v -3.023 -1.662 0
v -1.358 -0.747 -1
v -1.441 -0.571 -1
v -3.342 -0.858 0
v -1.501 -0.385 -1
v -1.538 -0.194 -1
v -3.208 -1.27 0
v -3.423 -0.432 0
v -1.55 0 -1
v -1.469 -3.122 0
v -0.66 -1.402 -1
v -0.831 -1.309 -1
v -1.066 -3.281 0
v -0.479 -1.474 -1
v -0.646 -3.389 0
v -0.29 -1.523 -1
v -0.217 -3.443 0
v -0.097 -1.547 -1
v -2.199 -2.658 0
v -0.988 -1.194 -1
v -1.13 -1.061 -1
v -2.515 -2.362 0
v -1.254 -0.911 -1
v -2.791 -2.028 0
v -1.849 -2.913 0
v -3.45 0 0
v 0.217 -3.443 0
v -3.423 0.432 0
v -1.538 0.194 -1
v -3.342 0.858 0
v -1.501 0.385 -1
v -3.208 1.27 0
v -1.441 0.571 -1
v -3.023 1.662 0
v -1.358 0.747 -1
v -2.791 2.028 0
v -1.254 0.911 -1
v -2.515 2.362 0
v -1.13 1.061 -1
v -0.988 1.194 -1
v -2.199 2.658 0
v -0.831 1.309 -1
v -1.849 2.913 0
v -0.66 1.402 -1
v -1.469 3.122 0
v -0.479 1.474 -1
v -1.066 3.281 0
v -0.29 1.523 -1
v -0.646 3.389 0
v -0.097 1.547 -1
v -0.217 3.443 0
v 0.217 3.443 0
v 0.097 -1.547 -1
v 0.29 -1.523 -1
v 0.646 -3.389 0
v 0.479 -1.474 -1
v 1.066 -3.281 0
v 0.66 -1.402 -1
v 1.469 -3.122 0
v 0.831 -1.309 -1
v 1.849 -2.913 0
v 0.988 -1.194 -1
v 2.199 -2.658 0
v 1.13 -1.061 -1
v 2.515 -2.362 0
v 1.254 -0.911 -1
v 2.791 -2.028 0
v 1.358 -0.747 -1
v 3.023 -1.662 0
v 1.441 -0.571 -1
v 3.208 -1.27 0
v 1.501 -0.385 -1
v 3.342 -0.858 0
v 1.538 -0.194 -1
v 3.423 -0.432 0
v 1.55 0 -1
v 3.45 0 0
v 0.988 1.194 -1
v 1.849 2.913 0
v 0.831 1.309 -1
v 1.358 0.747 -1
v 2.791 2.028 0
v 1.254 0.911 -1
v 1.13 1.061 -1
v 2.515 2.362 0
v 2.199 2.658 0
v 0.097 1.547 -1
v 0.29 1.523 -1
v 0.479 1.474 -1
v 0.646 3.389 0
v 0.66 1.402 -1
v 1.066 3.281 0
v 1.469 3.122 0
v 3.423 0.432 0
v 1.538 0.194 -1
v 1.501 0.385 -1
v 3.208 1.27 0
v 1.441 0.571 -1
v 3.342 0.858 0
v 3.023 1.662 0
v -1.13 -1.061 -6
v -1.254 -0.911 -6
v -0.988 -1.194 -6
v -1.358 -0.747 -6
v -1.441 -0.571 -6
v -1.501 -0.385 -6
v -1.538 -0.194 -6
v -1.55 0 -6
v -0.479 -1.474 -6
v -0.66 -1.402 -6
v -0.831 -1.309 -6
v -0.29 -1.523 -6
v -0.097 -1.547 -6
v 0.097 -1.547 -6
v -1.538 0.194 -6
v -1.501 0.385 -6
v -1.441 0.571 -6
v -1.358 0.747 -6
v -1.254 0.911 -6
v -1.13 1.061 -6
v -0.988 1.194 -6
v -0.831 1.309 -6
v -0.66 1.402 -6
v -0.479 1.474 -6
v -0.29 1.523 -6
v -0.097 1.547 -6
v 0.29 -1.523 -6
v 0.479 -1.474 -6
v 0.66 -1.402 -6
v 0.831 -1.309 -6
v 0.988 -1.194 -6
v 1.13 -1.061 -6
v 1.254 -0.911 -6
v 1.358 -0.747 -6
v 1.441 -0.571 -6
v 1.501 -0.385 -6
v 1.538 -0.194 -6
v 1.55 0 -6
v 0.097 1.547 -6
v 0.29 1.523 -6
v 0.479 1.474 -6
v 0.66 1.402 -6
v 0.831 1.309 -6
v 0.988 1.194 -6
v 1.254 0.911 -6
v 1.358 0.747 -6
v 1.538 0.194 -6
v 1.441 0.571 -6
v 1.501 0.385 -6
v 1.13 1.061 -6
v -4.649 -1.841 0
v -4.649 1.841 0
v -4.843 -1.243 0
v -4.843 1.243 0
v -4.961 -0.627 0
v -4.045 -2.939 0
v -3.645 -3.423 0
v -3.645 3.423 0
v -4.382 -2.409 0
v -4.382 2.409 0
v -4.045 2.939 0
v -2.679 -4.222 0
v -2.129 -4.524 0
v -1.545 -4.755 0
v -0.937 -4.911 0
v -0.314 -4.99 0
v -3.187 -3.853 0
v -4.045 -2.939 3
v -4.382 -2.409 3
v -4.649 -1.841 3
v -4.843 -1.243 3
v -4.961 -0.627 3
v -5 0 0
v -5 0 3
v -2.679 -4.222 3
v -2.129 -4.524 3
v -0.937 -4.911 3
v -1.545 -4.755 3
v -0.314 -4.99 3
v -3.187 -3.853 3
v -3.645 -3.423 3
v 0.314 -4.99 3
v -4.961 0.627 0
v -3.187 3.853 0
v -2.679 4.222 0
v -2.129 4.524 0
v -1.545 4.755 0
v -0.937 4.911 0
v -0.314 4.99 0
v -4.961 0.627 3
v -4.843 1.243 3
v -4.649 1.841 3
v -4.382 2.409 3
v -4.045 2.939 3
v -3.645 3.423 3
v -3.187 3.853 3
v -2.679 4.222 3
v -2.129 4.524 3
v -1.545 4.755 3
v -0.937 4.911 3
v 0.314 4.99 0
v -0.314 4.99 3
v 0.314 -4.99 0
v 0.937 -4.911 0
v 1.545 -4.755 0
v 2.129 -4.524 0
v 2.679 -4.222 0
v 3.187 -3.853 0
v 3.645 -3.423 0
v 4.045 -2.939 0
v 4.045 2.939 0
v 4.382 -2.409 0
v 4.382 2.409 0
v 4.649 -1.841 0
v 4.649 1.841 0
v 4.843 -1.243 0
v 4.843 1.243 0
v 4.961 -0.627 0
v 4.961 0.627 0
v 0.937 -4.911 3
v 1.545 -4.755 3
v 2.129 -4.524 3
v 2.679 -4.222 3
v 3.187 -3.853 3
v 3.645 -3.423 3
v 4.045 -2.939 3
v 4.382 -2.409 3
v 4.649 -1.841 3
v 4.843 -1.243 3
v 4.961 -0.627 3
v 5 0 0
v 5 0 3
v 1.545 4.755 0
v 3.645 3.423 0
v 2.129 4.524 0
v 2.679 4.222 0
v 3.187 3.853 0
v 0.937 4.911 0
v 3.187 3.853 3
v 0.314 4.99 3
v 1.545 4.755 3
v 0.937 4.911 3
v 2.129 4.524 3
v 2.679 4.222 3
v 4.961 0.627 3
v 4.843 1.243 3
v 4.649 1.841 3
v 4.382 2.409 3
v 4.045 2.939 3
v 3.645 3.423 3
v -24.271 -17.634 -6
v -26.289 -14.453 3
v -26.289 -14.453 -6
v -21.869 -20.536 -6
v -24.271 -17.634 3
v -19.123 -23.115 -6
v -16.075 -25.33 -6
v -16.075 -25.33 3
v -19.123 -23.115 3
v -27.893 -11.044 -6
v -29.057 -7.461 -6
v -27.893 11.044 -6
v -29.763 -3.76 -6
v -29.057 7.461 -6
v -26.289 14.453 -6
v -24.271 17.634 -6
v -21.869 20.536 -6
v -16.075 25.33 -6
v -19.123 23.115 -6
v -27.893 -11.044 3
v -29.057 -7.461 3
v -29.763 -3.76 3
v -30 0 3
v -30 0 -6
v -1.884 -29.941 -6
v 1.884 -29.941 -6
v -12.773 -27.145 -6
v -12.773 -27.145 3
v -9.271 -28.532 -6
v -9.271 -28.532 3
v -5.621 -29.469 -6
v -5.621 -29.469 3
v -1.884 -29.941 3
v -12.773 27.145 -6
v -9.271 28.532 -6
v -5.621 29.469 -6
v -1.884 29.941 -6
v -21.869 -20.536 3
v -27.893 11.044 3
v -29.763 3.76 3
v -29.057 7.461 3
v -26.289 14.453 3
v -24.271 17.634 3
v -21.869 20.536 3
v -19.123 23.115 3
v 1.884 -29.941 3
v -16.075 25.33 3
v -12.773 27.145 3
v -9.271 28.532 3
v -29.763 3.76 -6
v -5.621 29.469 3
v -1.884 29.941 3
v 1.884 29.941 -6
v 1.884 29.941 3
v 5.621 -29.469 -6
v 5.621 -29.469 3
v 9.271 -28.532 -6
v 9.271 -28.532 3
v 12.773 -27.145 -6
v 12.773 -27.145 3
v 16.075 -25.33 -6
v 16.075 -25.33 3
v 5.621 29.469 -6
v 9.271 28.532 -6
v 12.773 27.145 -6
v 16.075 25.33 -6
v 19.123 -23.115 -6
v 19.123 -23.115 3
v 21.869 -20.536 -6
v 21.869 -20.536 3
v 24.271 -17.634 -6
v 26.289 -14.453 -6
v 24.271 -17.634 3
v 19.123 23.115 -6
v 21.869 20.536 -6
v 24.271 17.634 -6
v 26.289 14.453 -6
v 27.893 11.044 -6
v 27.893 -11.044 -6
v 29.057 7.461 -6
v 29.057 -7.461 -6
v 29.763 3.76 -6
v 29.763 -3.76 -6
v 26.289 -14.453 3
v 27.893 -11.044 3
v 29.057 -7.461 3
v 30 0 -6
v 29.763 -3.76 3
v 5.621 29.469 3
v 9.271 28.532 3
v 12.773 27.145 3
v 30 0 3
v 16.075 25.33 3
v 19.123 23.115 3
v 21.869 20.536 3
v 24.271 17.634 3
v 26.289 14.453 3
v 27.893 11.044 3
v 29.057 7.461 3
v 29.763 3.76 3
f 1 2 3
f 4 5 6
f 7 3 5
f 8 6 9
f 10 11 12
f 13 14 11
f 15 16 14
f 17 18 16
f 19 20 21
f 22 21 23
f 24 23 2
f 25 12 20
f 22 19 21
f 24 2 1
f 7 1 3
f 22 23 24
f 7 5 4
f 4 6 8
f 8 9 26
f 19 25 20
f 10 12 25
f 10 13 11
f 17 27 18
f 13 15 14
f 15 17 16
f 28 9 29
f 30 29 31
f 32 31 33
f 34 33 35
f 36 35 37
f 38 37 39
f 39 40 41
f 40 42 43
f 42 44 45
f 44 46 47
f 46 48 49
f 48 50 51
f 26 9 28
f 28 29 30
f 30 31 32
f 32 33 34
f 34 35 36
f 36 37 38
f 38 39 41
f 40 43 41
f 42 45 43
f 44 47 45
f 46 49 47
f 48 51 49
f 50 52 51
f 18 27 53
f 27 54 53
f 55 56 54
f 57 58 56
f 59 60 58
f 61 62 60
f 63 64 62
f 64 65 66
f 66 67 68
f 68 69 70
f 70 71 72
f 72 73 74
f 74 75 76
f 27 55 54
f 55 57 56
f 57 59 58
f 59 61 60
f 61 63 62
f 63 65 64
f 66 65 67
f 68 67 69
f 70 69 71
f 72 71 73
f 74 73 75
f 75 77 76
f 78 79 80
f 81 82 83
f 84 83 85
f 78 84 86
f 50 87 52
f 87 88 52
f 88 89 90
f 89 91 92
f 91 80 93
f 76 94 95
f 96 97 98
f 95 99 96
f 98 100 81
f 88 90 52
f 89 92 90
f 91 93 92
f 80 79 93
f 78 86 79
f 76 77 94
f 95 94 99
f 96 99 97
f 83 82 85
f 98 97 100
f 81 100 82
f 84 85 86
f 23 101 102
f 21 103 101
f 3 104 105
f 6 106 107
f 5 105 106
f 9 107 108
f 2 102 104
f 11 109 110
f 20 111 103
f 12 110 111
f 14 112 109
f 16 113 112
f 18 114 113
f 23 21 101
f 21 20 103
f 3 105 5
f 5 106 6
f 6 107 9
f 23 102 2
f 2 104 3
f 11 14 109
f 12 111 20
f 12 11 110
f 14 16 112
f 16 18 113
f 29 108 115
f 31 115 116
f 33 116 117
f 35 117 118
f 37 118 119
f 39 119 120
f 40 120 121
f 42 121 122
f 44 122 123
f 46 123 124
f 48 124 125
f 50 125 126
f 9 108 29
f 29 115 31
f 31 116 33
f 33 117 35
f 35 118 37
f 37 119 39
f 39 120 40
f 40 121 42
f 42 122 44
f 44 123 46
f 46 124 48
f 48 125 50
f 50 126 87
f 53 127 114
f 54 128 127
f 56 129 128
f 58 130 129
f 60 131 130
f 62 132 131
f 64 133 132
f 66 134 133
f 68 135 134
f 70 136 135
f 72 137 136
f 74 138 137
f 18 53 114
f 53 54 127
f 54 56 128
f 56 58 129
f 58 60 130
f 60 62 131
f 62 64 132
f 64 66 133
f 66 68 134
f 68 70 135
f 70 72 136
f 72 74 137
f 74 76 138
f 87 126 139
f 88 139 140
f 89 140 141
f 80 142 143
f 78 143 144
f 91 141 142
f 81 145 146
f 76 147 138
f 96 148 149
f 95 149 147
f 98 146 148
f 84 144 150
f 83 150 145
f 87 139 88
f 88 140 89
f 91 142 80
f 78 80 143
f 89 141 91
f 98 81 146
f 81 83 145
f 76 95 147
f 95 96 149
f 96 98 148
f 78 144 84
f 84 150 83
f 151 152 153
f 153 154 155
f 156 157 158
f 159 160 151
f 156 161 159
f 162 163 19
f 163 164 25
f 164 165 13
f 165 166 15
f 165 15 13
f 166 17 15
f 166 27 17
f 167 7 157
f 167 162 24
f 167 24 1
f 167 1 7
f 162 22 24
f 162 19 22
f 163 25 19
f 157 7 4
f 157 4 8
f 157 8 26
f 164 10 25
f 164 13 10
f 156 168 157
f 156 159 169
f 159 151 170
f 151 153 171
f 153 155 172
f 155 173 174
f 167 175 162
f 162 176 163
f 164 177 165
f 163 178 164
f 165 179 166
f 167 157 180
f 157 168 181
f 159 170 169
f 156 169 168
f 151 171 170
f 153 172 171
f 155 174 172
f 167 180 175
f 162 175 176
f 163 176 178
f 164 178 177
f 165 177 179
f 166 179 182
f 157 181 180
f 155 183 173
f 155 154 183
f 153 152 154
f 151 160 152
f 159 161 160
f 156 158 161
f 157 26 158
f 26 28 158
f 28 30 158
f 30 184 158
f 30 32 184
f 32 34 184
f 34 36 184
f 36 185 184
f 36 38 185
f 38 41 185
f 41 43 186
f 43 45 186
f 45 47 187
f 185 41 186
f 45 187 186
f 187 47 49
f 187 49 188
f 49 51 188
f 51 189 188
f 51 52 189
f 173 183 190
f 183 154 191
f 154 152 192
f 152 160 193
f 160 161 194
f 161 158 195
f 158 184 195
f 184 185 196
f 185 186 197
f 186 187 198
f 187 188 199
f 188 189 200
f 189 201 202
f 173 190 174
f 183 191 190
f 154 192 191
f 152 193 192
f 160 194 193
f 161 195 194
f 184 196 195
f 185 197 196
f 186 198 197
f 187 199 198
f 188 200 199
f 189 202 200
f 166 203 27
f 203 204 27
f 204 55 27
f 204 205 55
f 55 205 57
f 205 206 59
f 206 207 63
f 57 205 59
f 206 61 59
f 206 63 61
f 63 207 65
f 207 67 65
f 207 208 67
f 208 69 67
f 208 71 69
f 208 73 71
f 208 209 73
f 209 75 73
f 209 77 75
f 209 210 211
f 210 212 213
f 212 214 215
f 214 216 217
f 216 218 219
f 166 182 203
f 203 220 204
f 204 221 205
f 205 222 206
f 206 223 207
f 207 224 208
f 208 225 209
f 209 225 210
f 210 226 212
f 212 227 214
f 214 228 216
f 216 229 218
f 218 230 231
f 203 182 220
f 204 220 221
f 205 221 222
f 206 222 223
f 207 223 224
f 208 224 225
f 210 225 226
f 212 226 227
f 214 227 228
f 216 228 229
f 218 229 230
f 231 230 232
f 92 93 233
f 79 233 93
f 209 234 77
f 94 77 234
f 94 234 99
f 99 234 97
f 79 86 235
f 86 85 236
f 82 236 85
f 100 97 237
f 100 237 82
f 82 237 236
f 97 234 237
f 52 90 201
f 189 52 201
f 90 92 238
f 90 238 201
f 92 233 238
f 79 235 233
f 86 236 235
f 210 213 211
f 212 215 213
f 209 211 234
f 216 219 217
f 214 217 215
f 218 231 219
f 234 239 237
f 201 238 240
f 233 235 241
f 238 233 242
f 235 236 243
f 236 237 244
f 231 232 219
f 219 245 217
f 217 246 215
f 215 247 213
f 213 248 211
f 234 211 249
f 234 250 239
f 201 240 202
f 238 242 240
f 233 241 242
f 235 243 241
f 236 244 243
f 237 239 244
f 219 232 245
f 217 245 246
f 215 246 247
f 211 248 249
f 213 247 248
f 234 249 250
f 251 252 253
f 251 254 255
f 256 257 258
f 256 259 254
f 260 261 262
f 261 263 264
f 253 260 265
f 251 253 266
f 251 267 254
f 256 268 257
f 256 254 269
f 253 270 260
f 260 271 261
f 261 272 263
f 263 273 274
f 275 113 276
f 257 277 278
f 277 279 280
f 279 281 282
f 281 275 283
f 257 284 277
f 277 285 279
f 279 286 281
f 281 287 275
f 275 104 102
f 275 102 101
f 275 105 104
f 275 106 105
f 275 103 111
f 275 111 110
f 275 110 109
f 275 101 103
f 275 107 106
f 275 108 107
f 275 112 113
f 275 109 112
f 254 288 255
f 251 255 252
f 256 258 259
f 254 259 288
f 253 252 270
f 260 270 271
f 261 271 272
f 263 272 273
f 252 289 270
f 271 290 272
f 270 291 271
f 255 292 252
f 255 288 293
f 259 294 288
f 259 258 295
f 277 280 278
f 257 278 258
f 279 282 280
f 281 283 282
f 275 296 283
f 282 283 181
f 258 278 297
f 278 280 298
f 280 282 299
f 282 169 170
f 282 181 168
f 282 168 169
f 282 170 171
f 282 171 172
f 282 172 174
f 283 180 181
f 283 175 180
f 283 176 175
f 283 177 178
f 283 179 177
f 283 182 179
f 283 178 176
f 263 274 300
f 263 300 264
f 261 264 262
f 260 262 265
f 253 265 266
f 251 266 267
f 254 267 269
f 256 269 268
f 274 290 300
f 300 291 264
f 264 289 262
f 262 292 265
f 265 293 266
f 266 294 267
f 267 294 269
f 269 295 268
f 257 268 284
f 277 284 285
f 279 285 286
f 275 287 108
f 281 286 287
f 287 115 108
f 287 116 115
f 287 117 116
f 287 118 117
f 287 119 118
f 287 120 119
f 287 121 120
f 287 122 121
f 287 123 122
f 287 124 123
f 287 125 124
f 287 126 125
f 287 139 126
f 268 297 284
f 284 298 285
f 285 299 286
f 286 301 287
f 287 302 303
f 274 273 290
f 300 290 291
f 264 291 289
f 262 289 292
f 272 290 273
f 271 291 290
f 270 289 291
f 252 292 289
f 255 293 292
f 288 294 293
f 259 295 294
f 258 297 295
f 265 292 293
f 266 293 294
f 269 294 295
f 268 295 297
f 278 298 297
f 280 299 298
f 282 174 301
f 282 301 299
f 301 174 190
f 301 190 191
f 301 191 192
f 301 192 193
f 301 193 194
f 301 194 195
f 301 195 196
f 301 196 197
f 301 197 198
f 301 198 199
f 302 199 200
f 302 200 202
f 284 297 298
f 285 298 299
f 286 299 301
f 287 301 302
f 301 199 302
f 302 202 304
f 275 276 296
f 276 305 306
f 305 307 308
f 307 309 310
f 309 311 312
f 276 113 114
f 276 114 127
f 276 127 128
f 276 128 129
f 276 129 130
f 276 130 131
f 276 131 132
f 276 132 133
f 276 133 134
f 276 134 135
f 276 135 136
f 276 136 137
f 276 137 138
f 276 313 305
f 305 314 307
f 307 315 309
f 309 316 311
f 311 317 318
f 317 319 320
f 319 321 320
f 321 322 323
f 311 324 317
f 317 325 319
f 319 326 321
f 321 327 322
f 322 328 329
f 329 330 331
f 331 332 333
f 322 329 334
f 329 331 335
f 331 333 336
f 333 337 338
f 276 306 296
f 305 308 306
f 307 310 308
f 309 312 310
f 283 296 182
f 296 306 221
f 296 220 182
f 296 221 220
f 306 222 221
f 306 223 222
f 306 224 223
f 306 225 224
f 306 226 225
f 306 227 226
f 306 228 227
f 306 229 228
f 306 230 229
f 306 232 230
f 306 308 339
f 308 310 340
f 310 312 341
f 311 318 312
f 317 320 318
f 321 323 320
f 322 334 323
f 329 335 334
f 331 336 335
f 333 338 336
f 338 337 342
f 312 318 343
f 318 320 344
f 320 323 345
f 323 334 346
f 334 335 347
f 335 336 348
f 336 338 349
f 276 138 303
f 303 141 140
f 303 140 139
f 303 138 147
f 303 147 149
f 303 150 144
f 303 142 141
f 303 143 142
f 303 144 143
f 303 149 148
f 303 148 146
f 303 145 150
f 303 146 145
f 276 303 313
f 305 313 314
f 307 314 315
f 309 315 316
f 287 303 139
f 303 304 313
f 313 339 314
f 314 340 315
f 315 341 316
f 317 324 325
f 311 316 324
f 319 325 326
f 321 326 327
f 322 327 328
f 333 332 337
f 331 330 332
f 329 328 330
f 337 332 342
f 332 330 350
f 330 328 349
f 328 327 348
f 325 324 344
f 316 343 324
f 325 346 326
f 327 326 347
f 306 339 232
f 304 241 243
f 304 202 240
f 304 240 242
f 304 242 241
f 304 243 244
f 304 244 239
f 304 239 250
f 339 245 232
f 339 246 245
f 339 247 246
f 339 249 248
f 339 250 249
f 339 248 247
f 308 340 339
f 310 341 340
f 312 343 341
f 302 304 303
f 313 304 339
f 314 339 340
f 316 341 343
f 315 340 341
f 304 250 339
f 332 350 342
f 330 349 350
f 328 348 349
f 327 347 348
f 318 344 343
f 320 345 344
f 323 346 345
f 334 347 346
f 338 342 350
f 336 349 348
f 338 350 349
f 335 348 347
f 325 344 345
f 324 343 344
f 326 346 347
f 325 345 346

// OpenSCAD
$fn = 50;


difference() {
	union() {
		translate(v = [0, 0, -6.0000000000]) {
			cylinder(h = 9, r = 30.0000000000);
		}
	}
	union() {
		translate(v = [0, 0, 0]) {
			rotate(a = [0, 0, 0]) {
				difference() {
					union() {
						translate(v = [0, 0, -9.0000000000]) {
							cylinder(h = 9, r = 1.2500000000);
						}
						translate(v = [0, 0, -1.0000000000]) {
							cylinder(h = 1.0000000000, r1 = 1.5500000000, r2 = 3.4500000000);
						}
						translate(v = [0, 0, -9.0000000000]) {
							cylinder(h = 9, r = 1.5500000000);
						}
						translate(v = [0, 0, -9.0000000000]) {
							cylinder(h = 9, r = 1.2500000000);
						}
					}
					union();
				}
			}
		}
		#cylinder(h = 3, r = 5.0000000000);
	}
}
